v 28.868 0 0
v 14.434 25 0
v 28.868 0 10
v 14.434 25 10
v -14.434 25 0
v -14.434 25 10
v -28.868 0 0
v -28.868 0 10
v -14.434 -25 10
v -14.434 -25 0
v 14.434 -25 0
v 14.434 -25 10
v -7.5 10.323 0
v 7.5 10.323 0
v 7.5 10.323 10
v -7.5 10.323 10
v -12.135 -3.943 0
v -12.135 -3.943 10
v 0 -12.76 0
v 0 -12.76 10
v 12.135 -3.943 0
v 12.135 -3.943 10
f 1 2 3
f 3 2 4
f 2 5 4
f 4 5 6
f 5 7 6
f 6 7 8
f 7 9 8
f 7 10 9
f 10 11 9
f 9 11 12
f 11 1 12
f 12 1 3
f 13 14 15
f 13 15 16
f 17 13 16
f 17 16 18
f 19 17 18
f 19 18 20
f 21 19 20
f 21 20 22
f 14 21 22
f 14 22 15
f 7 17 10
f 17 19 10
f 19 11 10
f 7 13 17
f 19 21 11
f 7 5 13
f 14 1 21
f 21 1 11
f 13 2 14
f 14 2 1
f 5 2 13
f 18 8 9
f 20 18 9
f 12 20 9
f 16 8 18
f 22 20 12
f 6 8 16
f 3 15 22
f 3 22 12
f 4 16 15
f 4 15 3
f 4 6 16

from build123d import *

# Parameters (mm, degrees)
EXTRUDE_DEPTH = 10


with BuildPart() as part:
    # Sketch → Extrude (new body)
    with BuildSketch(Plane.XY):
        Polygon((28.867513, 0), (14.433757, 25), (-14.433757, 25), (-28.867513, 0), (-14.433757, -25), (14.433757, -25), align=None)
        Polygon((7.5, 10.322864), (-7.5, 10.322864), (-12.135255, -3.942983), (0, -12.759762), (12.135255, -3.942983), align=None, mode=Mode.SUBTRACT)
    extrude(amount=EXTRUDE_DEPTH)


solid = part.part
